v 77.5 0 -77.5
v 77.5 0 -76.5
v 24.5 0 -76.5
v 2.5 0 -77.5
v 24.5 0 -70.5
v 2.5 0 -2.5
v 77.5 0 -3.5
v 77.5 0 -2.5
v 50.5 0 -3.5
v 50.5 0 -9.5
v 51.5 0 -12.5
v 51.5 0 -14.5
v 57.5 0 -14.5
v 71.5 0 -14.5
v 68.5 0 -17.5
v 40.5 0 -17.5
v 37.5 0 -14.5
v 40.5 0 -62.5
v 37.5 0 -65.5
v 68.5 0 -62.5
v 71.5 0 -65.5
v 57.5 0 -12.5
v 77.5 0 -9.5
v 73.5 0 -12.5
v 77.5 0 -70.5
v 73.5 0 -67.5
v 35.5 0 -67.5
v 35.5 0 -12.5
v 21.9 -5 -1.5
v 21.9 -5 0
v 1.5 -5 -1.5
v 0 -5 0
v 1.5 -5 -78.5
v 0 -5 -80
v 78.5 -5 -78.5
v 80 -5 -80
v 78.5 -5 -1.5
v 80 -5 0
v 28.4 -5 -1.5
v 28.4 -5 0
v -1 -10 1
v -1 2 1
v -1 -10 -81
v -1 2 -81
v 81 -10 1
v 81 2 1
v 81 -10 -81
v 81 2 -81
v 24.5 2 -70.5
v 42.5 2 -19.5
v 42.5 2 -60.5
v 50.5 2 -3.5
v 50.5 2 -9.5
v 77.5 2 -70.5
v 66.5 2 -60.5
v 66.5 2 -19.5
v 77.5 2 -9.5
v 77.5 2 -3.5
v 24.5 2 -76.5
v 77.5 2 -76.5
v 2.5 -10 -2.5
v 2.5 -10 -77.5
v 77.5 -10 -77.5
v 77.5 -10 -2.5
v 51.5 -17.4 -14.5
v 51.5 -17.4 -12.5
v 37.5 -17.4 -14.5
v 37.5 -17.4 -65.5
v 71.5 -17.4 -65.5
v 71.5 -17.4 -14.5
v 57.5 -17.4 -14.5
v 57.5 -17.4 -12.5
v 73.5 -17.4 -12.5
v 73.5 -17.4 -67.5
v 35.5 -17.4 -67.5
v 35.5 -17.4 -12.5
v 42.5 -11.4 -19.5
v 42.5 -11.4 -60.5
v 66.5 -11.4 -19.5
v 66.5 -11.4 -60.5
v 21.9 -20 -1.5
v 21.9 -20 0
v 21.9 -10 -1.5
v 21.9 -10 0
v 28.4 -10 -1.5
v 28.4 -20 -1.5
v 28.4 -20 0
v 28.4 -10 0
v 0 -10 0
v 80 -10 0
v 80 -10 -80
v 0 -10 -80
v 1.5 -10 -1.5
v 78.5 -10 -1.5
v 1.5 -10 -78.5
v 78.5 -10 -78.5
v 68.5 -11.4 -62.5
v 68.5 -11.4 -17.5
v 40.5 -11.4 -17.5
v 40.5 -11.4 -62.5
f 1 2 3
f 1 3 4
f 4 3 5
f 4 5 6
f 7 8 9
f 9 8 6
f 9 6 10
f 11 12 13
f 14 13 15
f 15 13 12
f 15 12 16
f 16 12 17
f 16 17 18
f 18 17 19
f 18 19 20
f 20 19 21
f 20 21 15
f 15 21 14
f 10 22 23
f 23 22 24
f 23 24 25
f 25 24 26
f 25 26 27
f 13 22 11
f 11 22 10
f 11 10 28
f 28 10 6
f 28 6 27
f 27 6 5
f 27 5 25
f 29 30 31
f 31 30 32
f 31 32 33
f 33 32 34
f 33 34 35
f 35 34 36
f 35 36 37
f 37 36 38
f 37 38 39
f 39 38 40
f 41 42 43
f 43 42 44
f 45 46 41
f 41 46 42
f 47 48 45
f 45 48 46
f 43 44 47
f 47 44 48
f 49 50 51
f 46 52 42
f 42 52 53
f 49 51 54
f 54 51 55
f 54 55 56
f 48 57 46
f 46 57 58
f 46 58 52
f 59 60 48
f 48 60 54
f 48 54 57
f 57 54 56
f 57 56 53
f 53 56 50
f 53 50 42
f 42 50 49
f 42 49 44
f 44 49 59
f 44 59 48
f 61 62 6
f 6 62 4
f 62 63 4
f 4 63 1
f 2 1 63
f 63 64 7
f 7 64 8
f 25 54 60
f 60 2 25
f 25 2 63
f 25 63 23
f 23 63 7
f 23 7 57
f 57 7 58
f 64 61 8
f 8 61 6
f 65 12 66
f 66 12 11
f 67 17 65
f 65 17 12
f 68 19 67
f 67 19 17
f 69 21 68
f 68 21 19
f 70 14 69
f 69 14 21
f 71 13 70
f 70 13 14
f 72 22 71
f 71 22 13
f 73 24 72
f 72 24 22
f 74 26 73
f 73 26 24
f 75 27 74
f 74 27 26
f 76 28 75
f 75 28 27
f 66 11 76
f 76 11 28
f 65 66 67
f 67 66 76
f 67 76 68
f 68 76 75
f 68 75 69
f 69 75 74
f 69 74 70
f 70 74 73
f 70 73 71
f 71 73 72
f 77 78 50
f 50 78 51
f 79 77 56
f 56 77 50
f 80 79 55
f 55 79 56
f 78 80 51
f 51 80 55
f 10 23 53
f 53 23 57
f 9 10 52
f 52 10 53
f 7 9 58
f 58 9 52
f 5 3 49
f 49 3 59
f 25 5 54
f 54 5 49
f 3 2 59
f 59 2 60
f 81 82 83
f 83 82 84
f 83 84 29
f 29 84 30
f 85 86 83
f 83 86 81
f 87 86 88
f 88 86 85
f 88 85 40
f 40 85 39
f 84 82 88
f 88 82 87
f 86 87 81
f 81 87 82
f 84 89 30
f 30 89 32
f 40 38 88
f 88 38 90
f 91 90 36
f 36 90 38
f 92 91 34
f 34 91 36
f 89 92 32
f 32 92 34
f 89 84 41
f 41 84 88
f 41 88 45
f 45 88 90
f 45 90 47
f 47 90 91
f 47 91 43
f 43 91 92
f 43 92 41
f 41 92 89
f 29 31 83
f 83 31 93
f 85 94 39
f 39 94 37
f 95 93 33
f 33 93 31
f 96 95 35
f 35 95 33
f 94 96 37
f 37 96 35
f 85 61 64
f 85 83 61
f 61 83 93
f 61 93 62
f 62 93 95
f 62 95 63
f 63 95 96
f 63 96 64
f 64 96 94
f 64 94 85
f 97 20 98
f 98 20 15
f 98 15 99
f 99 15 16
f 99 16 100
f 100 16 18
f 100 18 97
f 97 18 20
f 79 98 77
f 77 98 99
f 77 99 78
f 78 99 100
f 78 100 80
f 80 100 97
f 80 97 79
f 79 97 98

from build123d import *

# Parameters (mm, degrees)
SKETCH5_W                 = 82
SKETCH5_H                 = 82
BOSS_EXTRUDE3_DEPTH       = 2
SKETCH9_W                 = 82
SKETCH9_H                 = 82
SKETCH9_W_2               = 75
SKETCH9_H_2               = 75
BOSS_EXTRUDE5_DEPTH       = 5
BOSS_EXTRUDE4_DEPTH       = 17.4
SKETCH7_W                 = 24
SKETCH7_H                 = 41
SKETCH7_W_2               = 27
SKETCH7_H_2               = 6
SKETCH7_W_3               = 53
CUT_EXTRUDE1_DEPTH        = 2
SKETCH10_W                = 6.5
SKETCH10_H                = 1.5
BOSS_EXTRUDE6_DEPTH       = 15
BOSS_EXTRUDE7_OUTLINE_W   = 82
BOSS_EXTRUDE7_OUTLINE_H   = 82
BOSS_EXTRUDE7_OUTLINE_W_2 = 80
BOSS_EXTRUDE7_OUTLINE_H_2 = 80
BOSS_EXTRUDE7_OUTLINE_W_3 = 77
BOSS_EXTRUDE7_OUTLINE_H_3 = 77
BOSS_EXTRUDE7_OUTLINE_W_4 = 75
BOSS_EXTRUDE7_OUTLINE_H_4 = 75
BOSS_EXTRUDE7_DEPTH       = 5
SKETCH12_W                = 28
SKETCH12_H                = 45
SKETCH12_W_2              = 24
SKETCH12_H_2              = 41
BOSS_EXTRUDE8_DEPTH       = 11.4


# Read off the part's stored shape, not the designer's step: Boss-Extrude7
with BuildPart() as part:
    # Sketch5 → Boss-Extrude3 (new body)
    with BuildSketch(Plane(origin=(0, 0, 0), x_dir=(1, 0, 0), z_dir=(0, 1, 0))):
        with Locations((40, 40)):
            Rectangle(SKETCH5_W, SKETCH5_H)
    extrude(amount=BOSS_EXTRUDE3_DEPTH)

    # Sketch9 → Boss-Extrude5 (add)
    with BuildSketch(Plane.XZ):
        with Locations((40, -40)):
            Rectangle(SKETCH9_W, SKETCH9_H)
        with Locations((40, -40)):
            Rectangle(SKETCH9_W_2, SKETCH9_H_2, mode=Mode.SUBTRACT)
    extrude(amount=BOSS_EXTRUDE5_DEPTH)

    # Sketch6 → Boss-Extrude4 (add)
    with BuildSketch(Plane.XZ):
        Polygon((35.5, -12.5), (35.5, -67.5), (73.5, -67.5), (73.5, -12.5), (57.5, -12.5), (57.5, -14.5), (71.5, -14.5), (71.5, -65.5), (37.5, -65.5), (37.5, -14.5), (51.5, -14.5), (51.5, -12.5), align=None)
    extrude(amount=BOSS_EXTRUDE4_DEPTH)

    # Sketch7 → Cut-Extrude1 (cut)
    with BuildSketch(Plane.XZ):
        with Locations((54.5, -40)):
            Rectangle(SKETCH7_W, SKETCH7_H)
        with Locations((64, -6.5)):
            Rectangle(SKETCH7_W_2, SKETCH7_H_2)
        with Locations((51, -73.5)):
            Rectangle(SKETCH7_W_3, SKETCH7_H_2)
    extrude(amount=-CUT_EXTRUDE1_DEPTH, mode=Mode.SUBTRACT)

    # Sketch10 → Boss-Extrude6 (add)
    with BuildSketch(Plane.XZ.offset(5)):
        with Locations((25.15, -0.75)):
            Rectangle(SKETCH10_W, SKETCH10_H)
    extrude(amount=BOSS_EXTRUDE6_DEPTH)

    # Boss-Extrude7 outline → Boss-Extrude7 (add)
    # profile 1 of 2: a face of its own
    with BuildSketch(Plane(origin=(0, -5, 0), x_dir=(-1, 0, 0), z_dir=(0, -1, 0))):
        with Locations((-40, 40)):
            Rectangle(BOSS_EXTRUDE7_OUTLINE_W, BOSS_EXTRUDE7_OUTLINE_H)
        with Locations((-40, 40)):
            Rectangle(BOSS_EXTRUDE7_OUTLINE_W_2, BOSS_EXTRUDE7_OUTLINE_H_2, mode=Mode.SUBTRACT)
    # profile 2 of 2: a face of its own
    with BuildSketch(Plane(origin=(0, -5, 0), x_dir=(-1, 0, 0), z_dir=(0, -1, 0))):
        with Locations((-40, 40)):
            Rectangle(BOSS_EXTRUDE7_OUTLINE_W_3, BOSS_EXTRUDE7_OUTLINE_H_3)
        with Locations((-40, 40)):
            Rectangle(BOSS_EXTRUDE7_OUTLINE_W_4, BOSS_EXTRUDE7_OUTLINE_H_4, mode=Mode.SUBTRACT)
    extrude(amount=BOSS_EXTRUDE7_DEPTH)

    # Sketch12 → Boss-Extrude8 (add)
    with BuildSketch(Plane.XZ):
        with Locations((54.5, -40)):
            Rectangle(SKETCH12_W, SKETCH12_H)
        with Locations((54.5, -40)):
            Rectangle(SKETCH12_W_2, SKETCH12_H_2, mode=Mode.SUBTRACT)
    extrude(amount=BOSS_EXTRUDE8_DEPTH)


solid = part.part
